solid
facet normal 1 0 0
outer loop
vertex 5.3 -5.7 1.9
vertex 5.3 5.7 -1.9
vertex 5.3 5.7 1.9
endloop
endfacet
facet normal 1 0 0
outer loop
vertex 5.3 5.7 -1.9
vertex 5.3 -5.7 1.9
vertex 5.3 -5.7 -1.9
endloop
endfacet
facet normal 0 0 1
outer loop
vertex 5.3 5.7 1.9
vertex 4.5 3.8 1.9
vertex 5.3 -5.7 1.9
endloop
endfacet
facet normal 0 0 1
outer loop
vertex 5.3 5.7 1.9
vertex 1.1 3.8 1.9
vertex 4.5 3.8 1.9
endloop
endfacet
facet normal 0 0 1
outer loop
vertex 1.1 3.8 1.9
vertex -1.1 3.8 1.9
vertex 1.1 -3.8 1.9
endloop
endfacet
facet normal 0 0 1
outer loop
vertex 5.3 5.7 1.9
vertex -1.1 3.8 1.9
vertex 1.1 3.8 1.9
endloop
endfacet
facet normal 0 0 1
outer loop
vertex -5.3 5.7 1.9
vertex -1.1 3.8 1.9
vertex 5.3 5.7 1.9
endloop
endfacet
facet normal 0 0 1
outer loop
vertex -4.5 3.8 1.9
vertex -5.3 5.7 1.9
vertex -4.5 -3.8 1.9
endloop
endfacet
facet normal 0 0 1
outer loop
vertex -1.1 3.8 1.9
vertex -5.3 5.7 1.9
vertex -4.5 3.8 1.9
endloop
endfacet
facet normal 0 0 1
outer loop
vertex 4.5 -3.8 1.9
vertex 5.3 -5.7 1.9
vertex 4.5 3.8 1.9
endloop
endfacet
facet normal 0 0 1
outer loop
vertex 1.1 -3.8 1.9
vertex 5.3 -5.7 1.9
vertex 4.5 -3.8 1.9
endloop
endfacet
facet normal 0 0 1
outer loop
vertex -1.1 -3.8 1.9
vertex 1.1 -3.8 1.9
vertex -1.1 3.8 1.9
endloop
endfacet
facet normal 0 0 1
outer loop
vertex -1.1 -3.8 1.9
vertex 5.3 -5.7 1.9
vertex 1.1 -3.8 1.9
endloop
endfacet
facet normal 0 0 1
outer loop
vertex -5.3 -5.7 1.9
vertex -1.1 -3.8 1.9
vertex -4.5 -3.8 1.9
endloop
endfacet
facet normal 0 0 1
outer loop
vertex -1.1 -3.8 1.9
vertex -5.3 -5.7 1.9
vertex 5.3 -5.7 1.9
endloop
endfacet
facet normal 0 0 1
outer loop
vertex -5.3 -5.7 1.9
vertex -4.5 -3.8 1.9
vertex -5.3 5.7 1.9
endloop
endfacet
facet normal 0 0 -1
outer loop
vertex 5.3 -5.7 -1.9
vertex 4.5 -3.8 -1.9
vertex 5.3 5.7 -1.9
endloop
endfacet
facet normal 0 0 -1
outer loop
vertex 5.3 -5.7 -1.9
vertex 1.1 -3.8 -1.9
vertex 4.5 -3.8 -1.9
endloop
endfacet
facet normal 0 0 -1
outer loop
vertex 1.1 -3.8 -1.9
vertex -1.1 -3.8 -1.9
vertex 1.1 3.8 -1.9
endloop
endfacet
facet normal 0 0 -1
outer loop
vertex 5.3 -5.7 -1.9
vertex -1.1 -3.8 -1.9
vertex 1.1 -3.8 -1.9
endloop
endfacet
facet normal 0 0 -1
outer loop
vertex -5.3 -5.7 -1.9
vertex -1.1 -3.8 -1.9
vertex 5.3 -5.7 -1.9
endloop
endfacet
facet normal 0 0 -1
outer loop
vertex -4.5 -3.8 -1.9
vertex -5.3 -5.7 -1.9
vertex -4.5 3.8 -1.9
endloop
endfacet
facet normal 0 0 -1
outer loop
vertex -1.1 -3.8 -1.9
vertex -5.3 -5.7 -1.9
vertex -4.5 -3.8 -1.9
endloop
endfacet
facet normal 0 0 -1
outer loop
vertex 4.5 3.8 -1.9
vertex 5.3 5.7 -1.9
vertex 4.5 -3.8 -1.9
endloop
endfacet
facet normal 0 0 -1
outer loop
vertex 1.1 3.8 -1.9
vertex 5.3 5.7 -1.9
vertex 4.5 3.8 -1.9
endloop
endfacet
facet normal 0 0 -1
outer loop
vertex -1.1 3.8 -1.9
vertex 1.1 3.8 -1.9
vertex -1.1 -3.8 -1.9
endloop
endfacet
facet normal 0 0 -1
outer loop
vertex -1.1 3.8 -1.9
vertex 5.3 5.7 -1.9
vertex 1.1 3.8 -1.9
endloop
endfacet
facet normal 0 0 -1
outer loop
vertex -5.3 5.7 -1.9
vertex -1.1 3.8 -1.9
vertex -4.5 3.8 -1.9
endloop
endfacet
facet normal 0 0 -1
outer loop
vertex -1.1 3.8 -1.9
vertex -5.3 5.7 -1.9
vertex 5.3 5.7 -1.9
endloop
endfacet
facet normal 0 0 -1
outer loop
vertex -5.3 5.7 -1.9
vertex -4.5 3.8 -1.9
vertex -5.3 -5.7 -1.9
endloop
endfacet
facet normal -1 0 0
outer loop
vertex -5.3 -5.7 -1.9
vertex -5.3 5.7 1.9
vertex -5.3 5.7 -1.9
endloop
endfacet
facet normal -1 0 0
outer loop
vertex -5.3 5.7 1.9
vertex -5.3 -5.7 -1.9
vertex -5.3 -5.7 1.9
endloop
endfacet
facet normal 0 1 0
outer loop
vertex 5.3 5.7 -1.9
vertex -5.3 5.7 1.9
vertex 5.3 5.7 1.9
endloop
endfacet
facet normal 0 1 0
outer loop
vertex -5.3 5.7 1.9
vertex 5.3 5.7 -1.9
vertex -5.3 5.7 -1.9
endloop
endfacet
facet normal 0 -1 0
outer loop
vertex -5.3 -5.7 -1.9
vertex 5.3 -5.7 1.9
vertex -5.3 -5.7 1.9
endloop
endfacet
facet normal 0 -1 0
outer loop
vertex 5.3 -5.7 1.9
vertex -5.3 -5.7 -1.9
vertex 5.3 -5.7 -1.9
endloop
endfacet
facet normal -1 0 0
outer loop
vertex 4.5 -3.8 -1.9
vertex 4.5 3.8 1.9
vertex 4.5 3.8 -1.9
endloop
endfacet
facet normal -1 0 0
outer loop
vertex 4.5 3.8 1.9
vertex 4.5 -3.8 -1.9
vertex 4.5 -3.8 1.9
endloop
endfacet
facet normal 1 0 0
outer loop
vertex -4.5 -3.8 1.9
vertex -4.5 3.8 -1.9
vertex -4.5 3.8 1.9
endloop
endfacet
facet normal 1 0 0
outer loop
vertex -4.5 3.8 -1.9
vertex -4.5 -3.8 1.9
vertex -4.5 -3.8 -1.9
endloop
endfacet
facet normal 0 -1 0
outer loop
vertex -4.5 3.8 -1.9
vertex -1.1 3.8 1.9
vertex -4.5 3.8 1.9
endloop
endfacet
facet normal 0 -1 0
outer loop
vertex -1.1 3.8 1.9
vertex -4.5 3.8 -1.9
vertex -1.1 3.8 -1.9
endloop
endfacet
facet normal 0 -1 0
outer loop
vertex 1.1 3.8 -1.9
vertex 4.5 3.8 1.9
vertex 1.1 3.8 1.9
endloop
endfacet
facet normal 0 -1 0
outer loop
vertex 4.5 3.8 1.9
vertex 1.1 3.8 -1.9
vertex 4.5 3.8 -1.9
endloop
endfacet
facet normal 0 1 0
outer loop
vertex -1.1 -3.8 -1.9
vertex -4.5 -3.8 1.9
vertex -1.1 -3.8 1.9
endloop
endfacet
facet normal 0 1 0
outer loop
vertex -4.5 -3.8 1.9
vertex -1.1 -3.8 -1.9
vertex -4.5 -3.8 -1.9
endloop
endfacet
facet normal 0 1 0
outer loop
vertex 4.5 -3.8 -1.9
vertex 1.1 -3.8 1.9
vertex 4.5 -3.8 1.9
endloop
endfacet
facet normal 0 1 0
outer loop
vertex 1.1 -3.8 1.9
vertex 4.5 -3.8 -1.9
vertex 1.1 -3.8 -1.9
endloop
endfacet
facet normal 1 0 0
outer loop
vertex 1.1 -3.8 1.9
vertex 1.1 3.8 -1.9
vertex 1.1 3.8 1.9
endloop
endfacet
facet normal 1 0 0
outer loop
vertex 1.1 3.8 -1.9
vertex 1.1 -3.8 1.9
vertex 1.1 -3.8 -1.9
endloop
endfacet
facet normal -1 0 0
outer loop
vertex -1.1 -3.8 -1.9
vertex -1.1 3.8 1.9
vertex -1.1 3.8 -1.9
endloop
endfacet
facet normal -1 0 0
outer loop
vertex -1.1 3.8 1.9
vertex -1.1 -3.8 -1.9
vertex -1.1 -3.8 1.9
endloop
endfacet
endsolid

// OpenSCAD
// Parameters
belt_width = 9;           // Width of the timing belt
belt_thickness = 3;       // Combined thickness of two stacked belts
clearance = 0.8;          // Additional clearance for ease of use

// Derived dimensions
outer_width = belt_width + 2 * clearance;
inner_width = belt_width;
section_height = belt_thickness + clearance; // Height of each of the three sections
height = 3 * section_height;  // Total height

module tri_glide_buckle() {
    difference() {
        // Outer shape
        cube([outer_width, height, belt_thickness + clearance], center=true);

        // Inner cutouts
        translate([0, section_height/2, 0])
        cube([inner_width, section_height, belt_thickness + clearance], center=true);
        translate([0, -section_height/2, 0])
        cube([inner_width, section_height, belt_thickness + clearance], center=true);
    }

    // Central divider extended to touch the sides
    cube([belt_thickness-clearance, height, belt_thickness + clearance], center=true);
}

// Call the module to create the buckle
tri_glide_buckle();
